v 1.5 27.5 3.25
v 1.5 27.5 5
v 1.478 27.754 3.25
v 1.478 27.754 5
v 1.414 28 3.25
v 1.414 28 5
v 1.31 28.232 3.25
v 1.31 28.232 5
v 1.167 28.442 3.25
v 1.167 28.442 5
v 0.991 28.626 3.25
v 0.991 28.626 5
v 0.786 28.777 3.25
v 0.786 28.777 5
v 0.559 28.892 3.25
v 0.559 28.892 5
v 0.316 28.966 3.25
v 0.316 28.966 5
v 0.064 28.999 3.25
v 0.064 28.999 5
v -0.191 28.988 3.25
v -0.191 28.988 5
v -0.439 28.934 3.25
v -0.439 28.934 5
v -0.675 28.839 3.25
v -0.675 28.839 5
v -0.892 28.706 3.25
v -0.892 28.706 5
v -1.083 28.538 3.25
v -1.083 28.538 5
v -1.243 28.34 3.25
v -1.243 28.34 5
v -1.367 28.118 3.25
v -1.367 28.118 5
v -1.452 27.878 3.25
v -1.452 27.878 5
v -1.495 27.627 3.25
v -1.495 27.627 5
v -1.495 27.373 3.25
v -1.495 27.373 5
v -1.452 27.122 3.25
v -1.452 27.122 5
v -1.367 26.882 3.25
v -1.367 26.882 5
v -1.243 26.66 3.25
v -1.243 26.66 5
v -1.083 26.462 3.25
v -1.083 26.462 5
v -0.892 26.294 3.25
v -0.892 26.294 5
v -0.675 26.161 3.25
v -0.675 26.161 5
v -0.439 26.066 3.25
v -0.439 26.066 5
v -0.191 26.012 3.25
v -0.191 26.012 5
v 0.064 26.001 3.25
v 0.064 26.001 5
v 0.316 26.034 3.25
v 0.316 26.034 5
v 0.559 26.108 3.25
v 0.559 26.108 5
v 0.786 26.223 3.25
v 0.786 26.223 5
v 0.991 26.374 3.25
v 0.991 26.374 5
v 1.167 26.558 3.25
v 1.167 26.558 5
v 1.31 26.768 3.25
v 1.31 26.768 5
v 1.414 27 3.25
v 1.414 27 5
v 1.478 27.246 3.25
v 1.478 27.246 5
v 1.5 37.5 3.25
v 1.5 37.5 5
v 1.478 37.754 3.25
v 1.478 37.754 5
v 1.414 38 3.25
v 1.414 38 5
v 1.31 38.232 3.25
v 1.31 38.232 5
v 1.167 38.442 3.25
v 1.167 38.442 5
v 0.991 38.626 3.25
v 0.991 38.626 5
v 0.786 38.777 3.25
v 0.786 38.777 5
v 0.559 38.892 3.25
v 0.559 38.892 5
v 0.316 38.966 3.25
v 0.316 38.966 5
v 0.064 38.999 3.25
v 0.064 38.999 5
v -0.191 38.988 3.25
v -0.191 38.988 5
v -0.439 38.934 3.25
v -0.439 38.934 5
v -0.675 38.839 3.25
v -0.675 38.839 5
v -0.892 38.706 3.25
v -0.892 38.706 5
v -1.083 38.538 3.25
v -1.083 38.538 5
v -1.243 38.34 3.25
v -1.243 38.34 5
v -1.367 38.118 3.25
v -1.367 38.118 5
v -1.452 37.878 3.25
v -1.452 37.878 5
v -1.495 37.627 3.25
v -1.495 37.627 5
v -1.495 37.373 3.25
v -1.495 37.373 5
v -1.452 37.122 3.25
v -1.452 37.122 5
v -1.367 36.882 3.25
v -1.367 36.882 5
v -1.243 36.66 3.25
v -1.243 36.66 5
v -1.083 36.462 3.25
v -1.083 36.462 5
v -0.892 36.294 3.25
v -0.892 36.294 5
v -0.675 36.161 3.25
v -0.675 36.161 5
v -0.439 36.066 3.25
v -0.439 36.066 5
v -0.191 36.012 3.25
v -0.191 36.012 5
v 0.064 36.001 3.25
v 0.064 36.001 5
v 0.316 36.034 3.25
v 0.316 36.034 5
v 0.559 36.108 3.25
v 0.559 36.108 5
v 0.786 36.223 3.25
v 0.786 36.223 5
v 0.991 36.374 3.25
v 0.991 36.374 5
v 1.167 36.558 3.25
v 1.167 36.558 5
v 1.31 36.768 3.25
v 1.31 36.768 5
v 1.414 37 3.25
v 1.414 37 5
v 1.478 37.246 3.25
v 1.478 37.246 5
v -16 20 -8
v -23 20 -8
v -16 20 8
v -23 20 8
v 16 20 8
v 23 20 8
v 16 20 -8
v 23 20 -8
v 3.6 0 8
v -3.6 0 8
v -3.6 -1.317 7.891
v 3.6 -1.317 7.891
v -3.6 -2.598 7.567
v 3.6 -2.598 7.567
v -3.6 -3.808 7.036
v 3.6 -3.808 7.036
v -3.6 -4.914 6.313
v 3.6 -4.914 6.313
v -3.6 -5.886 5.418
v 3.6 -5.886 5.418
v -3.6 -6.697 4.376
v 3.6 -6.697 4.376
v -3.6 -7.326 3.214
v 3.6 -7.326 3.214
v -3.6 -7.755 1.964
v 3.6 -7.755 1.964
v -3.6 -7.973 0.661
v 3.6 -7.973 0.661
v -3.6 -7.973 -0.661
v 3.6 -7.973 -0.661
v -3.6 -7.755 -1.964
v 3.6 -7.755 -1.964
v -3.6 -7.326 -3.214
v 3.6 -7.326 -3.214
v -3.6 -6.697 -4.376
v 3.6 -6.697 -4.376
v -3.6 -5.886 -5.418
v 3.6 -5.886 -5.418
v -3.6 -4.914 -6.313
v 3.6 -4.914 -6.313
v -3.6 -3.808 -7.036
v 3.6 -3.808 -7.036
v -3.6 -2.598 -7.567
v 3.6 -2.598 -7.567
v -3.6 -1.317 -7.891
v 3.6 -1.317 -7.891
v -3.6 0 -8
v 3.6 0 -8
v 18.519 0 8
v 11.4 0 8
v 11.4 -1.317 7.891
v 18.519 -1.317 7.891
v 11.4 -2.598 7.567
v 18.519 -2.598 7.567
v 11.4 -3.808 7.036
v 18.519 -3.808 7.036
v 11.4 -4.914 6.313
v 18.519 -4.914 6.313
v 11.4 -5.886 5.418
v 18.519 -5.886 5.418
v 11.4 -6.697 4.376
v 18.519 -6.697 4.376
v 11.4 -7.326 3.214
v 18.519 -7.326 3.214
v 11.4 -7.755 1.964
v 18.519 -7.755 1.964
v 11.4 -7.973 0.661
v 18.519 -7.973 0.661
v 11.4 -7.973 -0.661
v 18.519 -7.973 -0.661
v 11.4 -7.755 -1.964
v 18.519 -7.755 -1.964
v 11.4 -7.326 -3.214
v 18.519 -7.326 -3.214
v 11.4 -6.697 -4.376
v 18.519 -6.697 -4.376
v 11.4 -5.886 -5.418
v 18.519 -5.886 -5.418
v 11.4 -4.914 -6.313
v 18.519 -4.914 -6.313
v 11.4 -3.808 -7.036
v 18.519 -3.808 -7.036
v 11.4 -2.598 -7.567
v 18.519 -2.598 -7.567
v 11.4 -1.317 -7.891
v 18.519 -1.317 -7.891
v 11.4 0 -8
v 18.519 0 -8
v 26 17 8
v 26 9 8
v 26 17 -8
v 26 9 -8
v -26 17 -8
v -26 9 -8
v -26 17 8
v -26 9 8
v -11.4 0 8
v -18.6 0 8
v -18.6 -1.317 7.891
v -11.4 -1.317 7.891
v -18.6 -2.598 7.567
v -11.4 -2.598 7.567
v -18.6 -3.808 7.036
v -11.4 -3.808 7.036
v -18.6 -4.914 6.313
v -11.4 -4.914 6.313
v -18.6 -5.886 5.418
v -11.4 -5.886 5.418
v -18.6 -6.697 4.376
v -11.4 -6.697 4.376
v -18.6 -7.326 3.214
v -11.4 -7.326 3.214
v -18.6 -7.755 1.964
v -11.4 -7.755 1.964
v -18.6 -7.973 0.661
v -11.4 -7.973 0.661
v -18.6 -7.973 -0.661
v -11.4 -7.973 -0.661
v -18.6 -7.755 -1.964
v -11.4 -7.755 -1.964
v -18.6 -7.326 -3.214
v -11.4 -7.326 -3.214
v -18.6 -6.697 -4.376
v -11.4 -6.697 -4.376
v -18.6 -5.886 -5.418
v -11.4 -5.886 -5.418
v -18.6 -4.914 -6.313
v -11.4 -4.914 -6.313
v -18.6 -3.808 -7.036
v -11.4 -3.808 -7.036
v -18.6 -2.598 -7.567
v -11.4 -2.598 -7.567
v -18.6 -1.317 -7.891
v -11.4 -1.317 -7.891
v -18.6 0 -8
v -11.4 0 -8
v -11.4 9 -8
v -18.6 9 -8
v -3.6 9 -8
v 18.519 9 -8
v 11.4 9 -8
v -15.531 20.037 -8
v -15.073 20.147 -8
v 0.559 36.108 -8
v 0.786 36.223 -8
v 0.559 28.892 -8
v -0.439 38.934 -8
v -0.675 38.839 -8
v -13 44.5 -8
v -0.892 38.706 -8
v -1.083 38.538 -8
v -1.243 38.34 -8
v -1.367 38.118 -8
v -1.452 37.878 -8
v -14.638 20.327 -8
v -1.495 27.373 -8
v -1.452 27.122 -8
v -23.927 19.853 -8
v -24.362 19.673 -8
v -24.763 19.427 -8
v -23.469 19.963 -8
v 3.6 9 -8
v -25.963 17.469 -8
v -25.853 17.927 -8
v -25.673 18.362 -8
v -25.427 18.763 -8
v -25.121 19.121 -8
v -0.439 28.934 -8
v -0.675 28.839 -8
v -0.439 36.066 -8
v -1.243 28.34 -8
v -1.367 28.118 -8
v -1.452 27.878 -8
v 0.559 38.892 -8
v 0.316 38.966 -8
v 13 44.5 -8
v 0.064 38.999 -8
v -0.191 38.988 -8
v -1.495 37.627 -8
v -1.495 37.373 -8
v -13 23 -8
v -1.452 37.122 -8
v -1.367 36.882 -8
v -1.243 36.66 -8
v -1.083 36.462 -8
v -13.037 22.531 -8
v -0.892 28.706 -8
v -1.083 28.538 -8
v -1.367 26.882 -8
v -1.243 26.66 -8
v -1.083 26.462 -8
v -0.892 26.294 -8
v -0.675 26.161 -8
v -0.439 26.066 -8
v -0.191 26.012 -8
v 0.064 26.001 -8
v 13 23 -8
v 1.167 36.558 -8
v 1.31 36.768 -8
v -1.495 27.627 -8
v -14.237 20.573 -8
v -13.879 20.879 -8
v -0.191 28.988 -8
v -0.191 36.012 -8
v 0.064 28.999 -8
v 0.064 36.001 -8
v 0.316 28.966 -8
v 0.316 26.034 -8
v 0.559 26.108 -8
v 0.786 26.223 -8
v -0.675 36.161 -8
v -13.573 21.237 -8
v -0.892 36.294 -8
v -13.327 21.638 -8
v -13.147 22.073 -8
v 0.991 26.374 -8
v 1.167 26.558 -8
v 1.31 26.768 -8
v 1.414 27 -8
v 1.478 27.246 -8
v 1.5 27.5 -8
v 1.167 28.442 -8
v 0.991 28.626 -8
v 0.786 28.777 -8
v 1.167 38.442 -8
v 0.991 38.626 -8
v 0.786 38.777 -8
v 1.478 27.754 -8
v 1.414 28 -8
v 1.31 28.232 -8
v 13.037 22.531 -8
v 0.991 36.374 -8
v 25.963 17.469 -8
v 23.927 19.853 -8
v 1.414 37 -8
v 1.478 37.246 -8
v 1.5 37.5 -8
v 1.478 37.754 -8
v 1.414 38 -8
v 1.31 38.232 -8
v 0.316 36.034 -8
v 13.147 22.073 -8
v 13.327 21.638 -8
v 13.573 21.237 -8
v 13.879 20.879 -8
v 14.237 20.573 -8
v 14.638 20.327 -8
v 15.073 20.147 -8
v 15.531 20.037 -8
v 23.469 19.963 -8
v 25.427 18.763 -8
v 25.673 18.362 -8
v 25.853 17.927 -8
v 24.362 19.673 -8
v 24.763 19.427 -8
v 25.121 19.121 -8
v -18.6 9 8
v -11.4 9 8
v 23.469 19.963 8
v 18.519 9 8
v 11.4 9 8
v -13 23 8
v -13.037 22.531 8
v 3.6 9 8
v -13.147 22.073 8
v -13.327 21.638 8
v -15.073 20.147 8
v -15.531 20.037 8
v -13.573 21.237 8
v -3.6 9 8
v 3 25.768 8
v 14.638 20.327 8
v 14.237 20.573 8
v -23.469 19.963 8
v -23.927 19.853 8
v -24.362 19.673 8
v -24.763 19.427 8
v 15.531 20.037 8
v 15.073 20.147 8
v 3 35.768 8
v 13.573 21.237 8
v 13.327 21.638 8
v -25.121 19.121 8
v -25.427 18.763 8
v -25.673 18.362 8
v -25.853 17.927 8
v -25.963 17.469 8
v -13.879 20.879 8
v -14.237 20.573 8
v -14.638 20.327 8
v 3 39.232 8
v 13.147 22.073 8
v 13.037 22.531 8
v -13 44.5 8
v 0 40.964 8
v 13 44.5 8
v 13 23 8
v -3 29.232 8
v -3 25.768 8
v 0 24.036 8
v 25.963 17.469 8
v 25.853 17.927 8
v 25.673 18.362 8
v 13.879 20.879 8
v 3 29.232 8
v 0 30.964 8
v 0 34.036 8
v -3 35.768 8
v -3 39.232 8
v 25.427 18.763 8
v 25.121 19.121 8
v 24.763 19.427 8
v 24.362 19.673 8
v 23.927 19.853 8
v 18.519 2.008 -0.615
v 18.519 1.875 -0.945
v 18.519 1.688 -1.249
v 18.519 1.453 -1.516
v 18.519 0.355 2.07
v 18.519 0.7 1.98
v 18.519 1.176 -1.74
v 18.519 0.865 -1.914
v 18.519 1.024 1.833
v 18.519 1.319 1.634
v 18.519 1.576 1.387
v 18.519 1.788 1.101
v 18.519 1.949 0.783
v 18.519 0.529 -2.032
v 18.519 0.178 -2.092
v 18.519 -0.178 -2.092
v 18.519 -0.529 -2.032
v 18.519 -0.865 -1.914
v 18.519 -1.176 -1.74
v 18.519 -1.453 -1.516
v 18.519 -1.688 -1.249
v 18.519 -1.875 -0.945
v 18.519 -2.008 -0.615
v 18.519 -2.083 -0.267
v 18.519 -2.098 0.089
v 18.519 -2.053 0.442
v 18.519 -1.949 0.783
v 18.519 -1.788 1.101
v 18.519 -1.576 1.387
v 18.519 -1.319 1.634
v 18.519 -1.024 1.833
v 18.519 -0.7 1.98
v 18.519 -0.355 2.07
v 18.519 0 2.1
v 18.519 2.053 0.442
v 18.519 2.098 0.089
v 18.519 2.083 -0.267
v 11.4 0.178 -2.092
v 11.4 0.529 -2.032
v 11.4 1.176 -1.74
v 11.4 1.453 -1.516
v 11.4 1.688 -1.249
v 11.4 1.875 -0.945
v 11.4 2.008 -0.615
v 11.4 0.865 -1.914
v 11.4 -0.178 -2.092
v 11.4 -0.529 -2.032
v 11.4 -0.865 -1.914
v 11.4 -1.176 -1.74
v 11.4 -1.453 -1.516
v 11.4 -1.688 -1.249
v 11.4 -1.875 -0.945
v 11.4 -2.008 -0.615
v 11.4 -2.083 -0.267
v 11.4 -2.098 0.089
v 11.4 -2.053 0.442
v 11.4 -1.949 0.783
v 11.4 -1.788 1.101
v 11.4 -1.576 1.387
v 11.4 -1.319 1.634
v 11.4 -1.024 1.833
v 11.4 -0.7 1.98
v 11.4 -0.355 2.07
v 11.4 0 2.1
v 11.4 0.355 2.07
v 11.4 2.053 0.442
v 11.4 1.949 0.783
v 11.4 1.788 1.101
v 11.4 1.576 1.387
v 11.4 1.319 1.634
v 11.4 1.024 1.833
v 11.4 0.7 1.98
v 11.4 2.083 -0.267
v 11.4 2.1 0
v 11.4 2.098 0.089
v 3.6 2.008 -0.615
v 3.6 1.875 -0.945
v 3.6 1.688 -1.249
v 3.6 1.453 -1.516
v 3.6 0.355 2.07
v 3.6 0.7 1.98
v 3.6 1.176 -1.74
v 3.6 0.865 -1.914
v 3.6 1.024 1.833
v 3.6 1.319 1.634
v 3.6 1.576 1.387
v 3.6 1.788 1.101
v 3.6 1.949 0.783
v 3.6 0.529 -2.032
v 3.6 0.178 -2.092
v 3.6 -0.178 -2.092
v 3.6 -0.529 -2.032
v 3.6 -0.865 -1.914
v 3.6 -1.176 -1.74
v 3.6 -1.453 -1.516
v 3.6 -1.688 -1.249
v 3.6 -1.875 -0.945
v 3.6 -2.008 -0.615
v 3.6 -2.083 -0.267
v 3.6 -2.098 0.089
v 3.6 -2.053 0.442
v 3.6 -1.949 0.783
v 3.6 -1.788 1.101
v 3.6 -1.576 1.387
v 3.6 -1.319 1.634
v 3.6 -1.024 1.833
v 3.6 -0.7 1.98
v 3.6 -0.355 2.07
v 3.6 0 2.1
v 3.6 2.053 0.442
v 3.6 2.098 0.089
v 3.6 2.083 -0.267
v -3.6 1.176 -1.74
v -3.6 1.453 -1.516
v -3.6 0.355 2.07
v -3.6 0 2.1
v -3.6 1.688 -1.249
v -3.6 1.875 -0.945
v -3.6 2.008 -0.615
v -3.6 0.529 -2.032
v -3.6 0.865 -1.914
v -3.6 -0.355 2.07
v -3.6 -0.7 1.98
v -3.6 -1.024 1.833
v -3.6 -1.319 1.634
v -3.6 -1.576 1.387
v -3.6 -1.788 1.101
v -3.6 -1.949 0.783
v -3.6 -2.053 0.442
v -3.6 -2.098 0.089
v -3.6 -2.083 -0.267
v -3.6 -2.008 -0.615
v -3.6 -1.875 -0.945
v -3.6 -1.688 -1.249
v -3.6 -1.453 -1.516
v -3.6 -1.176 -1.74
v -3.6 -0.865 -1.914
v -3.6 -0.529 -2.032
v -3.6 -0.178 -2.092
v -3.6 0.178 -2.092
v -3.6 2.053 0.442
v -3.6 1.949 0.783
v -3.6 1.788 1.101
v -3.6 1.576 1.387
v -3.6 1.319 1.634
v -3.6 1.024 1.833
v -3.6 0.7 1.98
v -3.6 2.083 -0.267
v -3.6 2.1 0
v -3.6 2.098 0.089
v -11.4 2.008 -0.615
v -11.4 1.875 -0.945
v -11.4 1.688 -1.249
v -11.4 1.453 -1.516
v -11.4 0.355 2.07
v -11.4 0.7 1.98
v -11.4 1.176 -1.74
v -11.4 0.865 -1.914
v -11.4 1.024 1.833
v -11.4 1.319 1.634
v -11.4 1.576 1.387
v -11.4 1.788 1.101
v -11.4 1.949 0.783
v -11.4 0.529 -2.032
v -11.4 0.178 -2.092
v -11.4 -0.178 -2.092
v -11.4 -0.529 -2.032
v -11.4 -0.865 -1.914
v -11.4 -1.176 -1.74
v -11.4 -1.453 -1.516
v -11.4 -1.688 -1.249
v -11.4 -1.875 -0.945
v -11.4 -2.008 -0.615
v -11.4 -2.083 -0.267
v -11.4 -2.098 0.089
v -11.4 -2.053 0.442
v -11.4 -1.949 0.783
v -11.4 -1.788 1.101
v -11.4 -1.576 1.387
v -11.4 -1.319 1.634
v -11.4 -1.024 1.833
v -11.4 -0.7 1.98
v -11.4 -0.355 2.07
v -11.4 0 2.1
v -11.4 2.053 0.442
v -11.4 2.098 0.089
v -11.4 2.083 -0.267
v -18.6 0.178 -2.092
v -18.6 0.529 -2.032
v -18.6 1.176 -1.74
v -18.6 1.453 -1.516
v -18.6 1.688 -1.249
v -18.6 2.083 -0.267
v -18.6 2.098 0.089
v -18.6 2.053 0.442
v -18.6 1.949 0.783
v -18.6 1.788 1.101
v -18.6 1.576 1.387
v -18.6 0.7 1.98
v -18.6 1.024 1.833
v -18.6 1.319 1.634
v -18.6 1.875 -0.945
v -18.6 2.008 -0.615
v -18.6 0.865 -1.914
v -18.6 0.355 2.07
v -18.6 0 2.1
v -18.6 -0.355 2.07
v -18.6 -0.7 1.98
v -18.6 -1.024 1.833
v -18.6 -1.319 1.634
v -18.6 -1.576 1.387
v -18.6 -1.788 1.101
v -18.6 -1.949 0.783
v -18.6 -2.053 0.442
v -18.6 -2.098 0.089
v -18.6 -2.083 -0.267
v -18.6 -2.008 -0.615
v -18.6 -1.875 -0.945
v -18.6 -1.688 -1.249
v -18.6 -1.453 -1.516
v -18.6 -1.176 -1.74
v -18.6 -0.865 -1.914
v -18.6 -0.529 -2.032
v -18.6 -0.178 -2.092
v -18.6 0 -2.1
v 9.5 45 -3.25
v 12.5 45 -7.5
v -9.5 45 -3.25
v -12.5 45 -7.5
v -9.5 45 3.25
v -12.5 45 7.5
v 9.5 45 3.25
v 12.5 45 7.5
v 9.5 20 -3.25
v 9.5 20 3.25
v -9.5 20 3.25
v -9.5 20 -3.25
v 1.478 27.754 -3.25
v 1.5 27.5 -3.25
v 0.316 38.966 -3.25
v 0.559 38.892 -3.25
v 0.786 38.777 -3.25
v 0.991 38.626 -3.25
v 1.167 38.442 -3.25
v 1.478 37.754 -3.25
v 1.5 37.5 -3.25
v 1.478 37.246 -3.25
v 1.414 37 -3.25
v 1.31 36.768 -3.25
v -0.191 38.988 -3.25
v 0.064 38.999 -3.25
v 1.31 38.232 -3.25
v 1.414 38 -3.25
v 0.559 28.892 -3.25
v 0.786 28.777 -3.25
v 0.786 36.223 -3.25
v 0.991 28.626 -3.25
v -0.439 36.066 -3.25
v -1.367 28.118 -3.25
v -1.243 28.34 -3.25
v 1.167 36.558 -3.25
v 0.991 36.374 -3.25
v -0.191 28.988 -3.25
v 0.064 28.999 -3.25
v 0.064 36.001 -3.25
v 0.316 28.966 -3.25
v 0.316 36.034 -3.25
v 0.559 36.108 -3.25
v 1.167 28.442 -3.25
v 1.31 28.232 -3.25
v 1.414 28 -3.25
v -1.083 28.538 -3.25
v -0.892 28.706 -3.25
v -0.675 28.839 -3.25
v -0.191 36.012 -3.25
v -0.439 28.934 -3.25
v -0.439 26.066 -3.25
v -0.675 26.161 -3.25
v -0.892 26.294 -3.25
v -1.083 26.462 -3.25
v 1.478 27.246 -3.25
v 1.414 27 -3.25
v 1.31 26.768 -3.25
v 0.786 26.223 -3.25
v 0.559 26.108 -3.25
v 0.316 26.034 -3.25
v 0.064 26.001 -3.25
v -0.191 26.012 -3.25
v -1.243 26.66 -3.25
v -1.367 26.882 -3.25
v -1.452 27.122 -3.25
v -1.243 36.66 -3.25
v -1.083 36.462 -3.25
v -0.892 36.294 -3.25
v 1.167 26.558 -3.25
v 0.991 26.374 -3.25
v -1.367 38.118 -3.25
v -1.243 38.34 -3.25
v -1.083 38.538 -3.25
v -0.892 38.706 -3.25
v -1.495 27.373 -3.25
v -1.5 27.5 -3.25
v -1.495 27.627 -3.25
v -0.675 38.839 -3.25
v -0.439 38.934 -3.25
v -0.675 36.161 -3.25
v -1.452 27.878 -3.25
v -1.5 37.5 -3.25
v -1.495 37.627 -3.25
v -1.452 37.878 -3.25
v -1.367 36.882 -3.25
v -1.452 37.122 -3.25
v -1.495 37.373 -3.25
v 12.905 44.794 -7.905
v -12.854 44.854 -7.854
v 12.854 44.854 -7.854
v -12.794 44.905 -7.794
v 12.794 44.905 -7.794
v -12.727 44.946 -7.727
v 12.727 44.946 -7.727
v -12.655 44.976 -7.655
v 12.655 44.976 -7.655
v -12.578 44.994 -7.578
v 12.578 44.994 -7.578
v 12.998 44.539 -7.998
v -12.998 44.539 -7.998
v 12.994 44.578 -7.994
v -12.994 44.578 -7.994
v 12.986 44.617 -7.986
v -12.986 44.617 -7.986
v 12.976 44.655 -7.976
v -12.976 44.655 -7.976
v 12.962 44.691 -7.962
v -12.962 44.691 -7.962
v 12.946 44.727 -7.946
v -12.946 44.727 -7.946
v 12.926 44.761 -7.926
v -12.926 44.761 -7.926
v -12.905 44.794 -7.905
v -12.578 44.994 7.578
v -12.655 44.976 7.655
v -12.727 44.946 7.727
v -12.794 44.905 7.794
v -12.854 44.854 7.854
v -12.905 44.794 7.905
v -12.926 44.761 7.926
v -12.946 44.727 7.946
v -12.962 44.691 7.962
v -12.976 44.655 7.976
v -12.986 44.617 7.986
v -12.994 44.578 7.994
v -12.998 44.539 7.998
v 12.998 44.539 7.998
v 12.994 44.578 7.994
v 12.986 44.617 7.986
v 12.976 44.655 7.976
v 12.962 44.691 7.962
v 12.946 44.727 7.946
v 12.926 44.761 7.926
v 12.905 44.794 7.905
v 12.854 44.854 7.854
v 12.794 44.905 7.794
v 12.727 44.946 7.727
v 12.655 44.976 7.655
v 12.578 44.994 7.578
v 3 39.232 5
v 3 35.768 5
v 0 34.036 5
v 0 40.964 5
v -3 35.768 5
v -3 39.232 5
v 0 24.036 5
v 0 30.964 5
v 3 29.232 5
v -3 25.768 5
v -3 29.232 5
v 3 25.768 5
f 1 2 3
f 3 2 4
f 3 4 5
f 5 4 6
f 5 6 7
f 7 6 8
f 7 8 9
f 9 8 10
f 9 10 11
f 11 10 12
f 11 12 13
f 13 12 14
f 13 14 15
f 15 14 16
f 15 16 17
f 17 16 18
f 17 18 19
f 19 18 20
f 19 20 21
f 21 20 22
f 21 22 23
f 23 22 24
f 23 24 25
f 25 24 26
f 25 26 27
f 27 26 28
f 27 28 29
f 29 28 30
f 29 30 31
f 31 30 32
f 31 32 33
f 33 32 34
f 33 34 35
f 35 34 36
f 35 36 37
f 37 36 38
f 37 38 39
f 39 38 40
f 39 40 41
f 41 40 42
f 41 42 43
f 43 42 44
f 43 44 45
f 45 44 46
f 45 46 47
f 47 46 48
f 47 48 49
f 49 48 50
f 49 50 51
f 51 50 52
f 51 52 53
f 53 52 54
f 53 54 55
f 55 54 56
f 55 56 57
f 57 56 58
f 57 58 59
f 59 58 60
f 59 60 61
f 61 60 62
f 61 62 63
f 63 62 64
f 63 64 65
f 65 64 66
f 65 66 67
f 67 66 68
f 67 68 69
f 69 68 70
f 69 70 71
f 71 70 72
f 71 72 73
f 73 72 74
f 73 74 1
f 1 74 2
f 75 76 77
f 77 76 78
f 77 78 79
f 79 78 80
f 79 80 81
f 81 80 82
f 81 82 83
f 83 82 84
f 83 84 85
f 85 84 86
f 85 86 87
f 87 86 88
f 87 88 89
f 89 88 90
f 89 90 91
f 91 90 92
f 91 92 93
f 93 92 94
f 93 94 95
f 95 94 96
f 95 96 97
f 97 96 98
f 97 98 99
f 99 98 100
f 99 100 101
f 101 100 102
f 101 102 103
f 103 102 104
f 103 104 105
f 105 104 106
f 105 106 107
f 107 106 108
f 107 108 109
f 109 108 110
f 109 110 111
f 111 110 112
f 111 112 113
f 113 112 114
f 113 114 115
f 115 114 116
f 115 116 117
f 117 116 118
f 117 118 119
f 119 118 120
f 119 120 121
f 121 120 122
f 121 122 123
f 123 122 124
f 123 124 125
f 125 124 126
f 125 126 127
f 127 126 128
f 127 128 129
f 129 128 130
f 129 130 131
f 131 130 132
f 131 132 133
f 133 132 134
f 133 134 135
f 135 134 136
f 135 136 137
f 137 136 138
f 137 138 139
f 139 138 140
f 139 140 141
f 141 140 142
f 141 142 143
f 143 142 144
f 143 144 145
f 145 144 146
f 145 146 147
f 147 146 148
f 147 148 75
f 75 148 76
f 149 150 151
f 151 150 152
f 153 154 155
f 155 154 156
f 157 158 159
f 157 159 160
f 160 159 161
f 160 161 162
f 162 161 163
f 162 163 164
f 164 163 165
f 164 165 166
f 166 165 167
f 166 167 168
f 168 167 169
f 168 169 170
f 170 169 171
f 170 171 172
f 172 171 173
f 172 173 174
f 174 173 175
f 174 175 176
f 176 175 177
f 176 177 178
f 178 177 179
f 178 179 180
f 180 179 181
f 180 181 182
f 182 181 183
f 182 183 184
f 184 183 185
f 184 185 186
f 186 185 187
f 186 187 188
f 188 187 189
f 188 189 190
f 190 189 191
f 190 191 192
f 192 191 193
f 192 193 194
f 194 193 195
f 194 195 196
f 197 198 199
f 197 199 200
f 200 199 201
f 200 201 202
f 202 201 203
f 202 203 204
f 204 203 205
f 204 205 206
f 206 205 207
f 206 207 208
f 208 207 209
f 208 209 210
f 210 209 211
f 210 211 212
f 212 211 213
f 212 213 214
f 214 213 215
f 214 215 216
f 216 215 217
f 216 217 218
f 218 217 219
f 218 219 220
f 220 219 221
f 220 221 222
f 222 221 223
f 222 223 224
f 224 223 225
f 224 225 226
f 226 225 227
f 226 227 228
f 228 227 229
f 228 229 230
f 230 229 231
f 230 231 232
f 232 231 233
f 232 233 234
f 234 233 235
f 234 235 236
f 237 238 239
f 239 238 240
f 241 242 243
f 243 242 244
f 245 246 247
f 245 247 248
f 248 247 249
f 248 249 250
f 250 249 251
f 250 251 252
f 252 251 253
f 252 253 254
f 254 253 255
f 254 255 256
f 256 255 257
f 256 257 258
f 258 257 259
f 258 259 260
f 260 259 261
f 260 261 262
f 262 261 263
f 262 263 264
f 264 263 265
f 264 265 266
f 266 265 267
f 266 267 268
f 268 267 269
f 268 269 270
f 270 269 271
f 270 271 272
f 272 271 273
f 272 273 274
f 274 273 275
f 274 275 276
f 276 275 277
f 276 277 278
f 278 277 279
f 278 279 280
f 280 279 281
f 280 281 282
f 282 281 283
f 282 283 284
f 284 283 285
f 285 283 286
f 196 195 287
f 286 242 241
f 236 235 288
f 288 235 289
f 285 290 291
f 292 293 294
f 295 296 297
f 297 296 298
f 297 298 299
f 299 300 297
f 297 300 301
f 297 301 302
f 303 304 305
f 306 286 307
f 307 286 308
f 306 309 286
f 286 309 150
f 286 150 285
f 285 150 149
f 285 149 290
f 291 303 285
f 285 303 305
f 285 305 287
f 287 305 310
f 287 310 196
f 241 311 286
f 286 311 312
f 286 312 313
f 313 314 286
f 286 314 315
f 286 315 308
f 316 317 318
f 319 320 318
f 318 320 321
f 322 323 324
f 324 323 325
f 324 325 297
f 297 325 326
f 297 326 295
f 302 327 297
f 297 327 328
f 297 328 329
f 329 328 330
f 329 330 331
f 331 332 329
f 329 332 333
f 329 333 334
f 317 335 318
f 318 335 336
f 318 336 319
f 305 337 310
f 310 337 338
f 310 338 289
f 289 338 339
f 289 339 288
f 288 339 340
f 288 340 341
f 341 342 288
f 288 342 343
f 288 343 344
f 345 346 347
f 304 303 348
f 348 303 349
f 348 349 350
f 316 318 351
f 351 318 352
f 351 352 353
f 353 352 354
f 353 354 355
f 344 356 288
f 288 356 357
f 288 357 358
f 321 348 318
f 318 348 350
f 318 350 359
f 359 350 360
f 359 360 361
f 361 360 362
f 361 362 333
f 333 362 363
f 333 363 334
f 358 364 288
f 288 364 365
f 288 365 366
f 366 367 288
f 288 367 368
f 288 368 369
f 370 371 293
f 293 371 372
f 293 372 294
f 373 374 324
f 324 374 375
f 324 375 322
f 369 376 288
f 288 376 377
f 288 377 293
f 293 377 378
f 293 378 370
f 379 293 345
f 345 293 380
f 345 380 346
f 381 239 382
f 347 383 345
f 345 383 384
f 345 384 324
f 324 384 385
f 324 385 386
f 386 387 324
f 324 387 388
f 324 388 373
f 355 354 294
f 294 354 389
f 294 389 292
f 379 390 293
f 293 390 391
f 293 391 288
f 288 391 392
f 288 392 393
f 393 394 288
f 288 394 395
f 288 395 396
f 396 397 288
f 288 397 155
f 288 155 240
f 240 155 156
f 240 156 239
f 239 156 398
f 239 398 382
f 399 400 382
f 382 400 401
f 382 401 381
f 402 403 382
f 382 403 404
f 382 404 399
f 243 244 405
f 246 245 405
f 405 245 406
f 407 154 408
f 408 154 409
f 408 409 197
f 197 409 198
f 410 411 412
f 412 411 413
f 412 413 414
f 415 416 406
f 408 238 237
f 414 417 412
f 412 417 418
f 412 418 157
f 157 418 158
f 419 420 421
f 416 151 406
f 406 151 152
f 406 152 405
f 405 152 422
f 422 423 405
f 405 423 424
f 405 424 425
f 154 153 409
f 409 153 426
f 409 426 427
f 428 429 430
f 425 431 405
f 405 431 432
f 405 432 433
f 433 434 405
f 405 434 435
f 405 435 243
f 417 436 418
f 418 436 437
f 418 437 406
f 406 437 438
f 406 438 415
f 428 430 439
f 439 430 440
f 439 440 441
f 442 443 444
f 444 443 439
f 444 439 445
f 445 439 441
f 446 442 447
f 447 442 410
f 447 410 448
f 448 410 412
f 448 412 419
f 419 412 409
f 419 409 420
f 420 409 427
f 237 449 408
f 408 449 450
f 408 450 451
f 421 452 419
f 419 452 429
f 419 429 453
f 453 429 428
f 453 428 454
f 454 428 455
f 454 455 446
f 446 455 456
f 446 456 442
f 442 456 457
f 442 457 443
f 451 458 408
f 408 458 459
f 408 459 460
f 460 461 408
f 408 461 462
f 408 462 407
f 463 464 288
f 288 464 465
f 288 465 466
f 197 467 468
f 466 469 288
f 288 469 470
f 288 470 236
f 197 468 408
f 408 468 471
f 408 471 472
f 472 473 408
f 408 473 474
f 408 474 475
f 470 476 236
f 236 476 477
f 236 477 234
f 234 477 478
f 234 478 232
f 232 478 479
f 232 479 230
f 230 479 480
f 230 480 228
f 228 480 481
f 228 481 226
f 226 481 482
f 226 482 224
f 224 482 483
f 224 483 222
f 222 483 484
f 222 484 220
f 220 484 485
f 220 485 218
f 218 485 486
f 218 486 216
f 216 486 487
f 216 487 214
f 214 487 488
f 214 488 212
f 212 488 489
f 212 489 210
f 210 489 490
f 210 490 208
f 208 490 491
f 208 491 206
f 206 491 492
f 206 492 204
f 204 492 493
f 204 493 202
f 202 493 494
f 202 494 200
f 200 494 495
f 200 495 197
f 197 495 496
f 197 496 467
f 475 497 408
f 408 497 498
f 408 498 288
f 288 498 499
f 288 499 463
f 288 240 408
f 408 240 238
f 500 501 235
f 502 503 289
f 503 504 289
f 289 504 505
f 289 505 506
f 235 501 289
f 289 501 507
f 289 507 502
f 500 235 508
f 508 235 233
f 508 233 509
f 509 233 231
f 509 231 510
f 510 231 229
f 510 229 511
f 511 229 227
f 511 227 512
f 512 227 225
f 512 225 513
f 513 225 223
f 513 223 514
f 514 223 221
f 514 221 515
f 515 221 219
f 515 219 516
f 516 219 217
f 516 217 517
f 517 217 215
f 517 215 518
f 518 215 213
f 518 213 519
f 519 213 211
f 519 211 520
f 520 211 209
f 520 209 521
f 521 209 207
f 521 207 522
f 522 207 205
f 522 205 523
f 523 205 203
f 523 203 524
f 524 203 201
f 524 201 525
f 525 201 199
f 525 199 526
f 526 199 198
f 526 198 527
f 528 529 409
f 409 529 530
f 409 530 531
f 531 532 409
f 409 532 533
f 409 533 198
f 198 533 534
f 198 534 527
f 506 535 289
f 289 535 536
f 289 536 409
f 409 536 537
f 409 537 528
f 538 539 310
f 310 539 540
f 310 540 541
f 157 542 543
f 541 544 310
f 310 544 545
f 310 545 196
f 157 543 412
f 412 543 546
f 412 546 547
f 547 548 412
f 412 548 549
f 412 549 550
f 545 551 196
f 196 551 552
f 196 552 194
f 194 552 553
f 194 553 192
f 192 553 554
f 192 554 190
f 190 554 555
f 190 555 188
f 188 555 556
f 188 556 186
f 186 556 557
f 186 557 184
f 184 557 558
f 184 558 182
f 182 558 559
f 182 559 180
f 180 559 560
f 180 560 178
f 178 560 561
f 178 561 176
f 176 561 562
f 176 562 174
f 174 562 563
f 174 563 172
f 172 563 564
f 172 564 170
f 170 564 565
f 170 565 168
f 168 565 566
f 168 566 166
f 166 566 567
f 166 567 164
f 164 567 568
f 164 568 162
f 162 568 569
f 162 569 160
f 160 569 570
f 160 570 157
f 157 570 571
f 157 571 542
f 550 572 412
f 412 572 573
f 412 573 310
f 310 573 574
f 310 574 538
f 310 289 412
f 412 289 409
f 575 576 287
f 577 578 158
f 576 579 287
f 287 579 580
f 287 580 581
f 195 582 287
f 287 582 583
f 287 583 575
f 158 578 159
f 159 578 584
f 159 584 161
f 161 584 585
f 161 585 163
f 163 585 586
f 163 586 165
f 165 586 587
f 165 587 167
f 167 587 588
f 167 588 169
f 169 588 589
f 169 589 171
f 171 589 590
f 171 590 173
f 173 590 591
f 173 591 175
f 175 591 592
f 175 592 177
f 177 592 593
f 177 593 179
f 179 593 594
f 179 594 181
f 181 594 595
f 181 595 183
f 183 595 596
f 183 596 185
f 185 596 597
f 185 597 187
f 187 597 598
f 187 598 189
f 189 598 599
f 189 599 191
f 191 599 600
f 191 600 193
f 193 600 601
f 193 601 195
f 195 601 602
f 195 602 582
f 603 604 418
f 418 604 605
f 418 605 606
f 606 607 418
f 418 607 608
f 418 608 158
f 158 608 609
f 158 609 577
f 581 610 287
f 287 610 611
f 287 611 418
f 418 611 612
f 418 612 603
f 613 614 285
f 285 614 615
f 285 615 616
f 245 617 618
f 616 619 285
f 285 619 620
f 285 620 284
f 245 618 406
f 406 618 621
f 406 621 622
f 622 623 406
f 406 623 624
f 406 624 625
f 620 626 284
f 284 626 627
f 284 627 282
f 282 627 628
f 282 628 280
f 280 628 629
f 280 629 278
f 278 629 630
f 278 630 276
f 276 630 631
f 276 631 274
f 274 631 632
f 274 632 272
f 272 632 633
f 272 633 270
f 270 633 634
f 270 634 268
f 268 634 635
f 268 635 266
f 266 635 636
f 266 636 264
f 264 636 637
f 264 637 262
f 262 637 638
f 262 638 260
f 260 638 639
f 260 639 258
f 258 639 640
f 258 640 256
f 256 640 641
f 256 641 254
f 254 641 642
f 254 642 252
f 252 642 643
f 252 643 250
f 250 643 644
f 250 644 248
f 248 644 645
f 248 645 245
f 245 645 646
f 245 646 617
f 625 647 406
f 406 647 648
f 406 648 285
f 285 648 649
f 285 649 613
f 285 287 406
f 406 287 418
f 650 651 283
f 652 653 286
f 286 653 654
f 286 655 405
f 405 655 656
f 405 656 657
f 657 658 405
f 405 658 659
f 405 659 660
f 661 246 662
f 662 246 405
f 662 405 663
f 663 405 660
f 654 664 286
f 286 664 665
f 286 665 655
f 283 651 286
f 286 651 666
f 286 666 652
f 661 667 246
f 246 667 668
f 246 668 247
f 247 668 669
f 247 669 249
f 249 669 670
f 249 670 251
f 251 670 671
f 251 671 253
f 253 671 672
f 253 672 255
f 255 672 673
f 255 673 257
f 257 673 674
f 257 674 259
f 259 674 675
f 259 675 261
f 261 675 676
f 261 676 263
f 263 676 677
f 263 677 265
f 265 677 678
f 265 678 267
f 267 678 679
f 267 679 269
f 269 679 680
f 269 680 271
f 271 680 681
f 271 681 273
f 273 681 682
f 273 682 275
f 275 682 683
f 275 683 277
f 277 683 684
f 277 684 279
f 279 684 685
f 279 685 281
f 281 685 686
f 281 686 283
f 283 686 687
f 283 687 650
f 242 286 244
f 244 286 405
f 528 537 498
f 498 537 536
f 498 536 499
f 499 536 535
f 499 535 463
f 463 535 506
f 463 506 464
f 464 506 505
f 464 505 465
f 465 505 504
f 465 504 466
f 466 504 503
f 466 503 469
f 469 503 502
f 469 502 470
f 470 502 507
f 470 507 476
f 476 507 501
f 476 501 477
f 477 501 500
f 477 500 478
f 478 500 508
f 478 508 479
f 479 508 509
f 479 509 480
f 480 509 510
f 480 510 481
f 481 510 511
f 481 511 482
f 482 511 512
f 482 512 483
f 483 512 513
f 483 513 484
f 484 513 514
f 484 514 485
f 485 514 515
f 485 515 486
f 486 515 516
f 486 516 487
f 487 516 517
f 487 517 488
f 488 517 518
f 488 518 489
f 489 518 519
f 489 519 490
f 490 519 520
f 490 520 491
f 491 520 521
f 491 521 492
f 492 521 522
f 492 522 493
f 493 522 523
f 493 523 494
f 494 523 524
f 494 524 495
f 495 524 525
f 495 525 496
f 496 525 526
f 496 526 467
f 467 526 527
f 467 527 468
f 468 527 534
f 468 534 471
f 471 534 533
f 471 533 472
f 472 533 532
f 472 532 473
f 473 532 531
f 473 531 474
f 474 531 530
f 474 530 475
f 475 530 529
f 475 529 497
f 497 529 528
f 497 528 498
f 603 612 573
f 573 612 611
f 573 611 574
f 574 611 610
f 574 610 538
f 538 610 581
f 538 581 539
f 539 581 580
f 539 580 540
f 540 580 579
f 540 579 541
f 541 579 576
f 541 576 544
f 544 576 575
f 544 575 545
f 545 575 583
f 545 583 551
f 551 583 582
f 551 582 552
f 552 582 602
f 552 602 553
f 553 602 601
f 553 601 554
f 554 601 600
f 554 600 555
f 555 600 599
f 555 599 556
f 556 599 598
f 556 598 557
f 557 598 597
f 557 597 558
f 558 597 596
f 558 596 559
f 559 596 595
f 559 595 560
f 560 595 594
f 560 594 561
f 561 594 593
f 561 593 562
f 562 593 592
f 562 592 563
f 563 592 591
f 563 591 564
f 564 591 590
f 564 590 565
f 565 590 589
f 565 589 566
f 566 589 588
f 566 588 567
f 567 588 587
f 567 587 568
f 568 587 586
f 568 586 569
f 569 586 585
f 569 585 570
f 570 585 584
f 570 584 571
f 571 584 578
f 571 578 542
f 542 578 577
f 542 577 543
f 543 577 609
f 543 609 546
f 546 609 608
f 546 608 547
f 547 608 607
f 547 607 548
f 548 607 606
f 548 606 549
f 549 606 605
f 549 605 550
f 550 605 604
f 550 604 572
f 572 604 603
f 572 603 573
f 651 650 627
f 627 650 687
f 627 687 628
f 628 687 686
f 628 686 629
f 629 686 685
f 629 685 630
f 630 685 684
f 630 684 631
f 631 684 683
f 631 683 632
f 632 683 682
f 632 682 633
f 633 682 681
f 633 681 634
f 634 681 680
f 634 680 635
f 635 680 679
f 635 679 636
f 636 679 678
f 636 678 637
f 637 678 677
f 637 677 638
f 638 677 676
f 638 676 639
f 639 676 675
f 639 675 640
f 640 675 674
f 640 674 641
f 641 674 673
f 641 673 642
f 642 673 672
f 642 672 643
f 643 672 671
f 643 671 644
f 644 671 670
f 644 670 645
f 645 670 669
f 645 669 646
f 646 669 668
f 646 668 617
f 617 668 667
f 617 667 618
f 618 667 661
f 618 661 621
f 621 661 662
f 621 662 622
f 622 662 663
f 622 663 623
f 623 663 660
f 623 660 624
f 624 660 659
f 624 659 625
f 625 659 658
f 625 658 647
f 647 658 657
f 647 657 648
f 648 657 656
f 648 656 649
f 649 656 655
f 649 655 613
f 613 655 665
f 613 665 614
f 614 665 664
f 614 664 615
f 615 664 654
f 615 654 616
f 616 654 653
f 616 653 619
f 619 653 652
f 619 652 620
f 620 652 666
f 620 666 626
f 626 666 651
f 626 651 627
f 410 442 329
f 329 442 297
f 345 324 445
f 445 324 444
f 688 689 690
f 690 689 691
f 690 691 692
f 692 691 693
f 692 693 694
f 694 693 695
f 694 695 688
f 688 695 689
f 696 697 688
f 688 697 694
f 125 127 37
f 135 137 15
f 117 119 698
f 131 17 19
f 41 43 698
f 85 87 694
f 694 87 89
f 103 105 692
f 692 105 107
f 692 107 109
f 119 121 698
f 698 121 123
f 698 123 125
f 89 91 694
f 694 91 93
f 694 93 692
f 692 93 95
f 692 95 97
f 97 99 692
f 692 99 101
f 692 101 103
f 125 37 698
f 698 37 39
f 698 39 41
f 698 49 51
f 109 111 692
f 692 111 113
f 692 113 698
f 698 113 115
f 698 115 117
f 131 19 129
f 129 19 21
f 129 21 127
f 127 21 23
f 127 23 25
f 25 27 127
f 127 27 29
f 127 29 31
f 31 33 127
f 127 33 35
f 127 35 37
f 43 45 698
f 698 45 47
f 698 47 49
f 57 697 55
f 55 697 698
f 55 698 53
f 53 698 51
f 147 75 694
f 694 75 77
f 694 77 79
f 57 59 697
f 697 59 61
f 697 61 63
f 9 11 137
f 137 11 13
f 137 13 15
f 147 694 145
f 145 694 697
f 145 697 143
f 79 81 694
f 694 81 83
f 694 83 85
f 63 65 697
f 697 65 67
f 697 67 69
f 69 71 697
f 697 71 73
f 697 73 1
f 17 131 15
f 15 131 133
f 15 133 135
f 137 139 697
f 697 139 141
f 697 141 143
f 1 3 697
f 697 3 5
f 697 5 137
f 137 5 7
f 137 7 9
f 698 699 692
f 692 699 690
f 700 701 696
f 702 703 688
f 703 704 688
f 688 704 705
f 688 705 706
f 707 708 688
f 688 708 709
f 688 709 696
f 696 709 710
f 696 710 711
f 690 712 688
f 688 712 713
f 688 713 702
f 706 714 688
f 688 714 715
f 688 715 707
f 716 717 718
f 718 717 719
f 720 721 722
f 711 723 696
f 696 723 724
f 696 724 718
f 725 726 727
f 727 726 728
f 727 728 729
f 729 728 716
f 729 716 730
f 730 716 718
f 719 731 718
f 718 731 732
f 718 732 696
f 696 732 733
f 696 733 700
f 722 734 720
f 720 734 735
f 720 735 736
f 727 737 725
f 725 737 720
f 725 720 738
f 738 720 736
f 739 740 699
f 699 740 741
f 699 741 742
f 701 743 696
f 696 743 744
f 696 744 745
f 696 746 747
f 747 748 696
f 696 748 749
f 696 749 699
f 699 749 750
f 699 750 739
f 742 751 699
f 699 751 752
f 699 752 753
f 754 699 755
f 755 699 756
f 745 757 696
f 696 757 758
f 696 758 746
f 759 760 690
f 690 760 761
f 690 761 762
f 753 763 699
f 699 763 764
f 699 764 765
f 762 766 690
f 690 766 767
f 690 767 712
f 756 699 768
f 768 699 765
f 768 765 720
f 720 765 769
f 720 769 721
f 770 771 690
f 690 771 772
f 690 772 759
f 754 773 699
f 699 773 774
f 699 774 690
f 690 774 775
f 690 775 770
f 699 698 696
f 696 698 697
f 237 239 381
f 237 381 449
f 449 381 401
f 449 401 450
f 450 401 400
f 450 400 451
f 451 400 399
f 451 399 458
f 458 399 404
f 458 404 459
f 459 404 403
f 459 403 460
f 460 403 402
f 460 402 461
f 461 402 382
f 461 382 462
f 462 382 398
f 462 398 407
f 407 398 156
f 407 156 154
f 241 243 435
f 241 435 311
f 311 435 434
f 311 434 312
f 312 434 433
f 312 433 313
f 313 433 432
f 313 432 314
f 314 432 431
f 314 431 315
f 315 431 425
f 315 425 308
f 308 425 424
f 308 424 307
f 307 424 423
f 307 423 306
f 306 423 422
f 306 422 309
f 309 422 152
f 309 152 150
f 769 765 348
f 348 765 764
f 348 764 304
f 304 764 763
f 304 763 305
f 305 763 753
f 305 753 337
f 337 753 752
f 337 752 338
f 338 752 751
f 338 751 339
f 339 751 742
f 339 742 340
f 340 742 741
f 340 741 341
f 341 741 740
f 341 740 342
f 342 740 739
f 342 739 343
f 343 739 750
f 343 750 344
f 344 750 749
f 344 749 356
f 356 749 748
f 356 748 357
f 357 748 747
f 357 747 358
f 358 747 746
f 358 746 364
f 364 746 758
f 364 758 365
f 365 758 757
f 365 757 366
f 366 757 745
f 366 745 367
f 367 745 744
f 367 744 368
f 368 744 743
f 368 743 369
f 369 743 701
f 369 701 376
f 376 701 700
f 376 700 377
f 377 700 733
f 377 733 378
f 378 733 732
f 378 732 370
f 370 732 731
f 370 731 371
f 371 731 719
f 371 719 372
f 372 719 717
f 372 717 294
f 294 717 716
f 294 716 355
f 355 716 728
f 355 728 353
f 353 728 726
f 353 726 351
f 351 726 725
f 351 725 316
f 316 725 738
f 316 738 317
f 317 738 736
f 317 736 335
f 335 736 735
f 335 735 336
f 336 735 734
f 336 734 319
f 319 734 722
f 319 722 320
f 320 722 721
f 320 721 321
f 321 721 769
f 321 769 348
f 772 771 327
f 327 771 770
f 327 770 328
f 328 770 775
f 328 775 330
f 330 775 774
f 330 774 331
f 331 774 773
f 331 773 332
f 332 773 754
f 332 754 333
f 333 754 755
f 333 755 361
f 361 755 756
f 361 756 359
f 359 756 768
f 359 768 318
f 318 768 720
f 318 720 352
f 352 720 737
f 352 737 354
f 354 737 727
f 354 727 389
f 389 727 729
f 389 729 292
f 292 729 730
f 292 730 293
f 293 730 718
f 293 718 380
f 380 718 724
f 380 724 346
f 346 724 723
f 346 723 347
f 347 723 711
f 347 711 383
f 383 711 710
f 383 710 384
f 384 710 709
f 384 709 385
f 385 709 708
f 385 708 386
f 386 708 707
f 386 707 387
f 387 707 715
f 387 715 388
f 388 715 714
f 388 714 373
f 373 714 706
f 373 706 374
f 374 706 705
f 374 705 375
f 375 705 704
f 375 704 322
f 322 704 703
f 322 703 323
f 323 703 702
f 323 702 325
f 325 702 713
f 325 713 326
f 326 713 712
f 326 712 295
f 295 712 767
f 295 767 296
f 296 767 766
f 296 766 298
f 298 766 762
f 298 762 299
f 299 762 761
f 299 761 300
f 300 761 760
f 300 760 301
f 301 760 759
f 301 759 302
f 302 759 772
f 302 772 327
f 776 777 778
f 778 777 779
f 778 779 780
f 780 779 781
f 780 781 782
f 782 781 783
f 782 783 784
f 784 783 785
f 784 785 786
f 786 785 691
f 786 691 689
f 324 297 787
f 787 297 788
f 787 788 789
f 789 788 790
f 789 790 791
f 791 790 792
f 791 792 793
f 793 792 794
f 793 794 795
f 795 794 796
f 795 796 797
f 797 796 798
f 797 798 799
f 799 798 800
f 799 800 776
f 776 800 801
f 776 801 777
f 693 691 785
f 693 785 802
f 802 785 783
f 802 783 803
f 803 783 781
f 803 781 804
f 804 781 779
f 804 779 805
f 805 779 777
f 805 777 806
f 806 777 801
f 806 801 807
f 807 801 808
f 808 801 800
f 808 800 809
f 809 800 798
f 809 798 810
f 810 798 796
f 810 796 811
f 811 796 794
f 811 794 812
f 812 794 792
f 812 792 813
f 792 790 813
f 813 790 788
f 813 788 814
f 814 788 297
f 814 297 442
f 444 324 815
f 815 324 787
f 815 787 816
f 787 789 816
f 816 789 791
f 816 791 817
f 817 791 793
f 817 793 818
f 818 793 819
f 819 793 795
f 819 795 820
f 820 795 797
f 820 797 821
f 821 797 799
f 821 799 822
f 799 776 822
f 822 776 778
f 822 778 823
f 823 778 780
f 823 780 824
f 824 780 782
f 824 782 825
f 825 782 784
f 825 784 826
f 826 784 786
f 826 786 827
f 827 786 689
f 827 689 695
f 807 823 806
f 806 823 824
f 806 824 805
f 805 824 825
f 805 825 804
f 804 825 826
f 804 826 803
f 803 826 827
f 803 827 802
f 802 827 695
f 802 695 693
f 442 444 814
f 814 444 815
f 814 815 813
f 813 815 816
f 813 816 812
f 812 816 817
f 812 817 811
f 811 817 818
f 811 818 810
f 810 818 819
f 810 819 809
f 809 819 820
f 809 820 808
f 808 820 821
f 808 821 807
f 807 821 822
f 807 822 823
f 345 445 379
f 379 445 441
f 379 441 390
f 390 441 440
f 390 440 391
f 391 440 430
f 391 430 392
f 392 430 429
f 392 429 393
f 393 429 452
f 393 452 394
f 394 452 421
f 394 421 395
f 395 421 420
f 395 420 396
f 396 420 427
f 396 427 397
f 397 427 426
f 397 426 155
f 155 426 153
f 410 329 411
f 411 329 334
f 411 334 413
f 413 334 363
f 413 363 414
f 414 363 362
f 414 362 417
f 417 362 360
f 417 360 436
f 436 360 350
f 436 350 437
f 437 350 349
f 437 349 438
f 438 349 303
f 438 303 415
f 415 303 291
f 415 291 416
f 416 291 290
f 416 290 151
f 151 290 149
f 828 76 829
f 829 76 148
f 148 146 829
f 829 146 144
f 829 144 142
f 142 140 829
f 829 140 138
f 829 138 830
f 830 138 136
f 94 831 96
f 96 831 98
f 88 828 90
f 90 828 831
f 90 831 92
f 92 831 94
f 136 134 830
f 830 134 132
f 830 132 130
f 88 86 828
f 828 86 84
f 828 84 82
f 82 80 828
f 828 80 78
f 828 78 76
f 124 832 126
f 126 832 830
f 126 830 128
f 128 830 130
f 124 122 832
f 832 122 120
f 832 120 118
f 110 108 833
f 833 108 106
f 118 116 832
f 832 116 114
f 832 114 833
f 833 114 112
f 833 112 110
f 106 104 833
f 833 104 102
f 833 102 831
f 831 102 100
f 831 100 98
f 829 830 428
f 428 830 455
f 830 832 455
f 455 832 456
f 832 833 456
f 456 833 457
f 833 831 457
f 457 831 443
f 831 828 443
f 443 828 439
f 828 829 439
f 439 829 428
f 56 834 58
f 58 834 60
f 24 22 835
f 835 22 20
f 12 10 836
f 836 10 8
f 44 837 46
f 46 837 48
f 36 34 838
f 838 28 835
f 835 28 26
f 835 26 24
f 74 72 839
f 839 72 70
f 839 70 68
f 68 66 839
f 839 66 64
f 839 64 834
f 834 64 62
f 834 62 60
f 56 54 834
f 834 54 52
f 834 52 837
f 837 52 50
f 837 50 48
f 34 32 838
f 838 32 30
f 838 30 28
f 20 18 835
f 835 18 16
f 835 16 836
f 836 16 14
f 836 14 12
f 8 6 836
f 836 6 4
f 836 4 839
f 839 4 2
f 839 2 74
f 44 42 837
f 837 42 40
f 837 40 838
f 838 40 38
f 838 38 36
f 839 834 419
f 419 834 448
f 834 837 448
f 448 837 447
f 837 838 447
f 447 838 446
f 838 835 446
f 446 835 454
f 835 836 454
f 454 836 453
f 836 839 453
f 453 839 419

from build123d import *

# Parameters (mm, degrees)
SKETCH2_R           = 2.1
BOSS_EXTRUDE1_DEPTH = 26
SKETCH3_W           = 7.4
SKETCH3_H           = 18
SKETCH3_W_2         = 7.8
SKETCH3_W_3         = 7.481047655
CUT_EXTRUDE1_DEPTH  = 17
SKETCH4_W           = 26
SKETCH4_H           = 16
BOSS_EXTRUDE2_DEPTH = 25
SKETCH5_W           = 19
SKETCH5_H           = 6.5
CUT_EXTRUDE2_DEPTH  = 25
FILLET2_R           = 3
SKETCH6_R           = 1.5
CUT_EXTRUDE3_DEPTH  = 12.5
FILLET3_R           = 0.5
FILLET4_R           = 3
CUT_EXTRUDE4_DEPTH  = 3


with BuildPart() as part:
    # Sketch2 → Boss-Extrude1 (new body, symmetric)
    with BuildSketch(Plane(origin=(0, 0, 0), x_dir=(0, 0, -1), z_dir=(1, 0, 0))):
        with BuildLine():
            Line((-8, 0), (-8, 20))
            Line((-8, 20), (8, 20))
            Line((8, 20), (8, 0))
            ThreePointArc((8, 0), (0, -8), (-8, 0))
        make_face()
        Circle(SKETCH2_R, mode=Mode.SUBTRACT)
    extrude(amount=BOSS_EXTRUDE1_DEPTH, both=True)

    # Sketch3 → Cut-Extrude1 (cut, through all)
    with BuildSketch(Plane.XY.offset(8)):
        with Locations((-22.3, 0)):
            Rectangle(SKETCH3_W, SKETCH3_H)
        with Locations((-7.5, 0)):
            Rectangle(SKETCH3_W_2, SKETCH3_H)
        with Locations((7.5, 0)):
            Rectangle(SKETCH3_W_2, SKETCH3_H)
        with Locations((22.259476173, 0)):
            Rectangle(SKETCH3_W_3, SKETCH3_H)
    extrude(amount=-CUT_EXTRUDE1_DEPTH, mode=Mode.SUBTRACT)

    # Sketch4 → Boss-Extrude2 (add)
    with BuildSketch(Plane(origin=(0, 20, 0), x_dir=(1, 0, 0), z_dir=(0, 1, 0))):
        Rectangle(SKETCH4_W, SKETCH4_H)
    extrude(amount=BOSS_EXTRUDE2_DEPTH)

    # Sketch5 → Cut-Extrude2 (cut)
    with BuildSketch(Plane(origin=(0, 45, 0), x_dir=(1, 0, 0), z_dir=(0, 1, 0))):
        Rectangle(SKETCH5_W, SKETCH5_H)
    extrude(amount=-CUT_EXTRUDE2_DEPTH, mode=Mode.SUBTRACT)

    # Fillet2
    fillet2_edges = [part.edges().sort_by_distance(p)[0] for p in [
        (26, 20, 0),
        (-26, 20, 0),
    ]]
    fillet(fillet2_edges, radius=FILLET2_R)

    # Sketch6 → Cut-Extrude3 (cut, symmetric)
    with BuildSketch(Plane.XY):
        with Locations((0, 37.5)):
            Circle(SKETCH6_R)
        with Locations((0, 27.5)):
            Circle(SKETCH6_R)
    extrude(amount=CUT_EXTRUDE3_DEPTH, both=True, mode=Mode.SUBTRACT)

    # Fillet3
    fillet3_edges = [part.edges().sort_by_distance(p)[0] for p in [
        (-13, 45, 0),
        (0, 45, 8),
        (13, 45, 0),
        (0, 45, -8),
    ]]
    fillet(fillet3_edges, radius=FILLET3_R)

    # Fillet4
    fillet4_edges = [part.edges().sort_by_distance(p)[0] for p in [
        (-13, 20, 0),
        (13, 20, 0),
    ]]
    fillet(fillet4_edges, radius=FILLET4_R)

    # Sketch7 → Cut-Extrude4 (cut)
    with BuildSketch(Plane.XY.offset(8)):
        Polygon((3, 35.767949192), (3, 39.232050808), (0, 40.964101615), (-3, 39.232050808), (-3, 35.767949192), (0, 34.035898385), align=None)
        Polygon((3, 25.767949192), (3, 29.232050808), (0, 30.964101615), (-3, 29.232050808), (-3, 25.767949192), (0, 24.035898385), align=None)
    extrude(amount=-CUT_EXTRUDE4_DEPTH, mode=Mode.SUBTRACT)


solid = part.part
